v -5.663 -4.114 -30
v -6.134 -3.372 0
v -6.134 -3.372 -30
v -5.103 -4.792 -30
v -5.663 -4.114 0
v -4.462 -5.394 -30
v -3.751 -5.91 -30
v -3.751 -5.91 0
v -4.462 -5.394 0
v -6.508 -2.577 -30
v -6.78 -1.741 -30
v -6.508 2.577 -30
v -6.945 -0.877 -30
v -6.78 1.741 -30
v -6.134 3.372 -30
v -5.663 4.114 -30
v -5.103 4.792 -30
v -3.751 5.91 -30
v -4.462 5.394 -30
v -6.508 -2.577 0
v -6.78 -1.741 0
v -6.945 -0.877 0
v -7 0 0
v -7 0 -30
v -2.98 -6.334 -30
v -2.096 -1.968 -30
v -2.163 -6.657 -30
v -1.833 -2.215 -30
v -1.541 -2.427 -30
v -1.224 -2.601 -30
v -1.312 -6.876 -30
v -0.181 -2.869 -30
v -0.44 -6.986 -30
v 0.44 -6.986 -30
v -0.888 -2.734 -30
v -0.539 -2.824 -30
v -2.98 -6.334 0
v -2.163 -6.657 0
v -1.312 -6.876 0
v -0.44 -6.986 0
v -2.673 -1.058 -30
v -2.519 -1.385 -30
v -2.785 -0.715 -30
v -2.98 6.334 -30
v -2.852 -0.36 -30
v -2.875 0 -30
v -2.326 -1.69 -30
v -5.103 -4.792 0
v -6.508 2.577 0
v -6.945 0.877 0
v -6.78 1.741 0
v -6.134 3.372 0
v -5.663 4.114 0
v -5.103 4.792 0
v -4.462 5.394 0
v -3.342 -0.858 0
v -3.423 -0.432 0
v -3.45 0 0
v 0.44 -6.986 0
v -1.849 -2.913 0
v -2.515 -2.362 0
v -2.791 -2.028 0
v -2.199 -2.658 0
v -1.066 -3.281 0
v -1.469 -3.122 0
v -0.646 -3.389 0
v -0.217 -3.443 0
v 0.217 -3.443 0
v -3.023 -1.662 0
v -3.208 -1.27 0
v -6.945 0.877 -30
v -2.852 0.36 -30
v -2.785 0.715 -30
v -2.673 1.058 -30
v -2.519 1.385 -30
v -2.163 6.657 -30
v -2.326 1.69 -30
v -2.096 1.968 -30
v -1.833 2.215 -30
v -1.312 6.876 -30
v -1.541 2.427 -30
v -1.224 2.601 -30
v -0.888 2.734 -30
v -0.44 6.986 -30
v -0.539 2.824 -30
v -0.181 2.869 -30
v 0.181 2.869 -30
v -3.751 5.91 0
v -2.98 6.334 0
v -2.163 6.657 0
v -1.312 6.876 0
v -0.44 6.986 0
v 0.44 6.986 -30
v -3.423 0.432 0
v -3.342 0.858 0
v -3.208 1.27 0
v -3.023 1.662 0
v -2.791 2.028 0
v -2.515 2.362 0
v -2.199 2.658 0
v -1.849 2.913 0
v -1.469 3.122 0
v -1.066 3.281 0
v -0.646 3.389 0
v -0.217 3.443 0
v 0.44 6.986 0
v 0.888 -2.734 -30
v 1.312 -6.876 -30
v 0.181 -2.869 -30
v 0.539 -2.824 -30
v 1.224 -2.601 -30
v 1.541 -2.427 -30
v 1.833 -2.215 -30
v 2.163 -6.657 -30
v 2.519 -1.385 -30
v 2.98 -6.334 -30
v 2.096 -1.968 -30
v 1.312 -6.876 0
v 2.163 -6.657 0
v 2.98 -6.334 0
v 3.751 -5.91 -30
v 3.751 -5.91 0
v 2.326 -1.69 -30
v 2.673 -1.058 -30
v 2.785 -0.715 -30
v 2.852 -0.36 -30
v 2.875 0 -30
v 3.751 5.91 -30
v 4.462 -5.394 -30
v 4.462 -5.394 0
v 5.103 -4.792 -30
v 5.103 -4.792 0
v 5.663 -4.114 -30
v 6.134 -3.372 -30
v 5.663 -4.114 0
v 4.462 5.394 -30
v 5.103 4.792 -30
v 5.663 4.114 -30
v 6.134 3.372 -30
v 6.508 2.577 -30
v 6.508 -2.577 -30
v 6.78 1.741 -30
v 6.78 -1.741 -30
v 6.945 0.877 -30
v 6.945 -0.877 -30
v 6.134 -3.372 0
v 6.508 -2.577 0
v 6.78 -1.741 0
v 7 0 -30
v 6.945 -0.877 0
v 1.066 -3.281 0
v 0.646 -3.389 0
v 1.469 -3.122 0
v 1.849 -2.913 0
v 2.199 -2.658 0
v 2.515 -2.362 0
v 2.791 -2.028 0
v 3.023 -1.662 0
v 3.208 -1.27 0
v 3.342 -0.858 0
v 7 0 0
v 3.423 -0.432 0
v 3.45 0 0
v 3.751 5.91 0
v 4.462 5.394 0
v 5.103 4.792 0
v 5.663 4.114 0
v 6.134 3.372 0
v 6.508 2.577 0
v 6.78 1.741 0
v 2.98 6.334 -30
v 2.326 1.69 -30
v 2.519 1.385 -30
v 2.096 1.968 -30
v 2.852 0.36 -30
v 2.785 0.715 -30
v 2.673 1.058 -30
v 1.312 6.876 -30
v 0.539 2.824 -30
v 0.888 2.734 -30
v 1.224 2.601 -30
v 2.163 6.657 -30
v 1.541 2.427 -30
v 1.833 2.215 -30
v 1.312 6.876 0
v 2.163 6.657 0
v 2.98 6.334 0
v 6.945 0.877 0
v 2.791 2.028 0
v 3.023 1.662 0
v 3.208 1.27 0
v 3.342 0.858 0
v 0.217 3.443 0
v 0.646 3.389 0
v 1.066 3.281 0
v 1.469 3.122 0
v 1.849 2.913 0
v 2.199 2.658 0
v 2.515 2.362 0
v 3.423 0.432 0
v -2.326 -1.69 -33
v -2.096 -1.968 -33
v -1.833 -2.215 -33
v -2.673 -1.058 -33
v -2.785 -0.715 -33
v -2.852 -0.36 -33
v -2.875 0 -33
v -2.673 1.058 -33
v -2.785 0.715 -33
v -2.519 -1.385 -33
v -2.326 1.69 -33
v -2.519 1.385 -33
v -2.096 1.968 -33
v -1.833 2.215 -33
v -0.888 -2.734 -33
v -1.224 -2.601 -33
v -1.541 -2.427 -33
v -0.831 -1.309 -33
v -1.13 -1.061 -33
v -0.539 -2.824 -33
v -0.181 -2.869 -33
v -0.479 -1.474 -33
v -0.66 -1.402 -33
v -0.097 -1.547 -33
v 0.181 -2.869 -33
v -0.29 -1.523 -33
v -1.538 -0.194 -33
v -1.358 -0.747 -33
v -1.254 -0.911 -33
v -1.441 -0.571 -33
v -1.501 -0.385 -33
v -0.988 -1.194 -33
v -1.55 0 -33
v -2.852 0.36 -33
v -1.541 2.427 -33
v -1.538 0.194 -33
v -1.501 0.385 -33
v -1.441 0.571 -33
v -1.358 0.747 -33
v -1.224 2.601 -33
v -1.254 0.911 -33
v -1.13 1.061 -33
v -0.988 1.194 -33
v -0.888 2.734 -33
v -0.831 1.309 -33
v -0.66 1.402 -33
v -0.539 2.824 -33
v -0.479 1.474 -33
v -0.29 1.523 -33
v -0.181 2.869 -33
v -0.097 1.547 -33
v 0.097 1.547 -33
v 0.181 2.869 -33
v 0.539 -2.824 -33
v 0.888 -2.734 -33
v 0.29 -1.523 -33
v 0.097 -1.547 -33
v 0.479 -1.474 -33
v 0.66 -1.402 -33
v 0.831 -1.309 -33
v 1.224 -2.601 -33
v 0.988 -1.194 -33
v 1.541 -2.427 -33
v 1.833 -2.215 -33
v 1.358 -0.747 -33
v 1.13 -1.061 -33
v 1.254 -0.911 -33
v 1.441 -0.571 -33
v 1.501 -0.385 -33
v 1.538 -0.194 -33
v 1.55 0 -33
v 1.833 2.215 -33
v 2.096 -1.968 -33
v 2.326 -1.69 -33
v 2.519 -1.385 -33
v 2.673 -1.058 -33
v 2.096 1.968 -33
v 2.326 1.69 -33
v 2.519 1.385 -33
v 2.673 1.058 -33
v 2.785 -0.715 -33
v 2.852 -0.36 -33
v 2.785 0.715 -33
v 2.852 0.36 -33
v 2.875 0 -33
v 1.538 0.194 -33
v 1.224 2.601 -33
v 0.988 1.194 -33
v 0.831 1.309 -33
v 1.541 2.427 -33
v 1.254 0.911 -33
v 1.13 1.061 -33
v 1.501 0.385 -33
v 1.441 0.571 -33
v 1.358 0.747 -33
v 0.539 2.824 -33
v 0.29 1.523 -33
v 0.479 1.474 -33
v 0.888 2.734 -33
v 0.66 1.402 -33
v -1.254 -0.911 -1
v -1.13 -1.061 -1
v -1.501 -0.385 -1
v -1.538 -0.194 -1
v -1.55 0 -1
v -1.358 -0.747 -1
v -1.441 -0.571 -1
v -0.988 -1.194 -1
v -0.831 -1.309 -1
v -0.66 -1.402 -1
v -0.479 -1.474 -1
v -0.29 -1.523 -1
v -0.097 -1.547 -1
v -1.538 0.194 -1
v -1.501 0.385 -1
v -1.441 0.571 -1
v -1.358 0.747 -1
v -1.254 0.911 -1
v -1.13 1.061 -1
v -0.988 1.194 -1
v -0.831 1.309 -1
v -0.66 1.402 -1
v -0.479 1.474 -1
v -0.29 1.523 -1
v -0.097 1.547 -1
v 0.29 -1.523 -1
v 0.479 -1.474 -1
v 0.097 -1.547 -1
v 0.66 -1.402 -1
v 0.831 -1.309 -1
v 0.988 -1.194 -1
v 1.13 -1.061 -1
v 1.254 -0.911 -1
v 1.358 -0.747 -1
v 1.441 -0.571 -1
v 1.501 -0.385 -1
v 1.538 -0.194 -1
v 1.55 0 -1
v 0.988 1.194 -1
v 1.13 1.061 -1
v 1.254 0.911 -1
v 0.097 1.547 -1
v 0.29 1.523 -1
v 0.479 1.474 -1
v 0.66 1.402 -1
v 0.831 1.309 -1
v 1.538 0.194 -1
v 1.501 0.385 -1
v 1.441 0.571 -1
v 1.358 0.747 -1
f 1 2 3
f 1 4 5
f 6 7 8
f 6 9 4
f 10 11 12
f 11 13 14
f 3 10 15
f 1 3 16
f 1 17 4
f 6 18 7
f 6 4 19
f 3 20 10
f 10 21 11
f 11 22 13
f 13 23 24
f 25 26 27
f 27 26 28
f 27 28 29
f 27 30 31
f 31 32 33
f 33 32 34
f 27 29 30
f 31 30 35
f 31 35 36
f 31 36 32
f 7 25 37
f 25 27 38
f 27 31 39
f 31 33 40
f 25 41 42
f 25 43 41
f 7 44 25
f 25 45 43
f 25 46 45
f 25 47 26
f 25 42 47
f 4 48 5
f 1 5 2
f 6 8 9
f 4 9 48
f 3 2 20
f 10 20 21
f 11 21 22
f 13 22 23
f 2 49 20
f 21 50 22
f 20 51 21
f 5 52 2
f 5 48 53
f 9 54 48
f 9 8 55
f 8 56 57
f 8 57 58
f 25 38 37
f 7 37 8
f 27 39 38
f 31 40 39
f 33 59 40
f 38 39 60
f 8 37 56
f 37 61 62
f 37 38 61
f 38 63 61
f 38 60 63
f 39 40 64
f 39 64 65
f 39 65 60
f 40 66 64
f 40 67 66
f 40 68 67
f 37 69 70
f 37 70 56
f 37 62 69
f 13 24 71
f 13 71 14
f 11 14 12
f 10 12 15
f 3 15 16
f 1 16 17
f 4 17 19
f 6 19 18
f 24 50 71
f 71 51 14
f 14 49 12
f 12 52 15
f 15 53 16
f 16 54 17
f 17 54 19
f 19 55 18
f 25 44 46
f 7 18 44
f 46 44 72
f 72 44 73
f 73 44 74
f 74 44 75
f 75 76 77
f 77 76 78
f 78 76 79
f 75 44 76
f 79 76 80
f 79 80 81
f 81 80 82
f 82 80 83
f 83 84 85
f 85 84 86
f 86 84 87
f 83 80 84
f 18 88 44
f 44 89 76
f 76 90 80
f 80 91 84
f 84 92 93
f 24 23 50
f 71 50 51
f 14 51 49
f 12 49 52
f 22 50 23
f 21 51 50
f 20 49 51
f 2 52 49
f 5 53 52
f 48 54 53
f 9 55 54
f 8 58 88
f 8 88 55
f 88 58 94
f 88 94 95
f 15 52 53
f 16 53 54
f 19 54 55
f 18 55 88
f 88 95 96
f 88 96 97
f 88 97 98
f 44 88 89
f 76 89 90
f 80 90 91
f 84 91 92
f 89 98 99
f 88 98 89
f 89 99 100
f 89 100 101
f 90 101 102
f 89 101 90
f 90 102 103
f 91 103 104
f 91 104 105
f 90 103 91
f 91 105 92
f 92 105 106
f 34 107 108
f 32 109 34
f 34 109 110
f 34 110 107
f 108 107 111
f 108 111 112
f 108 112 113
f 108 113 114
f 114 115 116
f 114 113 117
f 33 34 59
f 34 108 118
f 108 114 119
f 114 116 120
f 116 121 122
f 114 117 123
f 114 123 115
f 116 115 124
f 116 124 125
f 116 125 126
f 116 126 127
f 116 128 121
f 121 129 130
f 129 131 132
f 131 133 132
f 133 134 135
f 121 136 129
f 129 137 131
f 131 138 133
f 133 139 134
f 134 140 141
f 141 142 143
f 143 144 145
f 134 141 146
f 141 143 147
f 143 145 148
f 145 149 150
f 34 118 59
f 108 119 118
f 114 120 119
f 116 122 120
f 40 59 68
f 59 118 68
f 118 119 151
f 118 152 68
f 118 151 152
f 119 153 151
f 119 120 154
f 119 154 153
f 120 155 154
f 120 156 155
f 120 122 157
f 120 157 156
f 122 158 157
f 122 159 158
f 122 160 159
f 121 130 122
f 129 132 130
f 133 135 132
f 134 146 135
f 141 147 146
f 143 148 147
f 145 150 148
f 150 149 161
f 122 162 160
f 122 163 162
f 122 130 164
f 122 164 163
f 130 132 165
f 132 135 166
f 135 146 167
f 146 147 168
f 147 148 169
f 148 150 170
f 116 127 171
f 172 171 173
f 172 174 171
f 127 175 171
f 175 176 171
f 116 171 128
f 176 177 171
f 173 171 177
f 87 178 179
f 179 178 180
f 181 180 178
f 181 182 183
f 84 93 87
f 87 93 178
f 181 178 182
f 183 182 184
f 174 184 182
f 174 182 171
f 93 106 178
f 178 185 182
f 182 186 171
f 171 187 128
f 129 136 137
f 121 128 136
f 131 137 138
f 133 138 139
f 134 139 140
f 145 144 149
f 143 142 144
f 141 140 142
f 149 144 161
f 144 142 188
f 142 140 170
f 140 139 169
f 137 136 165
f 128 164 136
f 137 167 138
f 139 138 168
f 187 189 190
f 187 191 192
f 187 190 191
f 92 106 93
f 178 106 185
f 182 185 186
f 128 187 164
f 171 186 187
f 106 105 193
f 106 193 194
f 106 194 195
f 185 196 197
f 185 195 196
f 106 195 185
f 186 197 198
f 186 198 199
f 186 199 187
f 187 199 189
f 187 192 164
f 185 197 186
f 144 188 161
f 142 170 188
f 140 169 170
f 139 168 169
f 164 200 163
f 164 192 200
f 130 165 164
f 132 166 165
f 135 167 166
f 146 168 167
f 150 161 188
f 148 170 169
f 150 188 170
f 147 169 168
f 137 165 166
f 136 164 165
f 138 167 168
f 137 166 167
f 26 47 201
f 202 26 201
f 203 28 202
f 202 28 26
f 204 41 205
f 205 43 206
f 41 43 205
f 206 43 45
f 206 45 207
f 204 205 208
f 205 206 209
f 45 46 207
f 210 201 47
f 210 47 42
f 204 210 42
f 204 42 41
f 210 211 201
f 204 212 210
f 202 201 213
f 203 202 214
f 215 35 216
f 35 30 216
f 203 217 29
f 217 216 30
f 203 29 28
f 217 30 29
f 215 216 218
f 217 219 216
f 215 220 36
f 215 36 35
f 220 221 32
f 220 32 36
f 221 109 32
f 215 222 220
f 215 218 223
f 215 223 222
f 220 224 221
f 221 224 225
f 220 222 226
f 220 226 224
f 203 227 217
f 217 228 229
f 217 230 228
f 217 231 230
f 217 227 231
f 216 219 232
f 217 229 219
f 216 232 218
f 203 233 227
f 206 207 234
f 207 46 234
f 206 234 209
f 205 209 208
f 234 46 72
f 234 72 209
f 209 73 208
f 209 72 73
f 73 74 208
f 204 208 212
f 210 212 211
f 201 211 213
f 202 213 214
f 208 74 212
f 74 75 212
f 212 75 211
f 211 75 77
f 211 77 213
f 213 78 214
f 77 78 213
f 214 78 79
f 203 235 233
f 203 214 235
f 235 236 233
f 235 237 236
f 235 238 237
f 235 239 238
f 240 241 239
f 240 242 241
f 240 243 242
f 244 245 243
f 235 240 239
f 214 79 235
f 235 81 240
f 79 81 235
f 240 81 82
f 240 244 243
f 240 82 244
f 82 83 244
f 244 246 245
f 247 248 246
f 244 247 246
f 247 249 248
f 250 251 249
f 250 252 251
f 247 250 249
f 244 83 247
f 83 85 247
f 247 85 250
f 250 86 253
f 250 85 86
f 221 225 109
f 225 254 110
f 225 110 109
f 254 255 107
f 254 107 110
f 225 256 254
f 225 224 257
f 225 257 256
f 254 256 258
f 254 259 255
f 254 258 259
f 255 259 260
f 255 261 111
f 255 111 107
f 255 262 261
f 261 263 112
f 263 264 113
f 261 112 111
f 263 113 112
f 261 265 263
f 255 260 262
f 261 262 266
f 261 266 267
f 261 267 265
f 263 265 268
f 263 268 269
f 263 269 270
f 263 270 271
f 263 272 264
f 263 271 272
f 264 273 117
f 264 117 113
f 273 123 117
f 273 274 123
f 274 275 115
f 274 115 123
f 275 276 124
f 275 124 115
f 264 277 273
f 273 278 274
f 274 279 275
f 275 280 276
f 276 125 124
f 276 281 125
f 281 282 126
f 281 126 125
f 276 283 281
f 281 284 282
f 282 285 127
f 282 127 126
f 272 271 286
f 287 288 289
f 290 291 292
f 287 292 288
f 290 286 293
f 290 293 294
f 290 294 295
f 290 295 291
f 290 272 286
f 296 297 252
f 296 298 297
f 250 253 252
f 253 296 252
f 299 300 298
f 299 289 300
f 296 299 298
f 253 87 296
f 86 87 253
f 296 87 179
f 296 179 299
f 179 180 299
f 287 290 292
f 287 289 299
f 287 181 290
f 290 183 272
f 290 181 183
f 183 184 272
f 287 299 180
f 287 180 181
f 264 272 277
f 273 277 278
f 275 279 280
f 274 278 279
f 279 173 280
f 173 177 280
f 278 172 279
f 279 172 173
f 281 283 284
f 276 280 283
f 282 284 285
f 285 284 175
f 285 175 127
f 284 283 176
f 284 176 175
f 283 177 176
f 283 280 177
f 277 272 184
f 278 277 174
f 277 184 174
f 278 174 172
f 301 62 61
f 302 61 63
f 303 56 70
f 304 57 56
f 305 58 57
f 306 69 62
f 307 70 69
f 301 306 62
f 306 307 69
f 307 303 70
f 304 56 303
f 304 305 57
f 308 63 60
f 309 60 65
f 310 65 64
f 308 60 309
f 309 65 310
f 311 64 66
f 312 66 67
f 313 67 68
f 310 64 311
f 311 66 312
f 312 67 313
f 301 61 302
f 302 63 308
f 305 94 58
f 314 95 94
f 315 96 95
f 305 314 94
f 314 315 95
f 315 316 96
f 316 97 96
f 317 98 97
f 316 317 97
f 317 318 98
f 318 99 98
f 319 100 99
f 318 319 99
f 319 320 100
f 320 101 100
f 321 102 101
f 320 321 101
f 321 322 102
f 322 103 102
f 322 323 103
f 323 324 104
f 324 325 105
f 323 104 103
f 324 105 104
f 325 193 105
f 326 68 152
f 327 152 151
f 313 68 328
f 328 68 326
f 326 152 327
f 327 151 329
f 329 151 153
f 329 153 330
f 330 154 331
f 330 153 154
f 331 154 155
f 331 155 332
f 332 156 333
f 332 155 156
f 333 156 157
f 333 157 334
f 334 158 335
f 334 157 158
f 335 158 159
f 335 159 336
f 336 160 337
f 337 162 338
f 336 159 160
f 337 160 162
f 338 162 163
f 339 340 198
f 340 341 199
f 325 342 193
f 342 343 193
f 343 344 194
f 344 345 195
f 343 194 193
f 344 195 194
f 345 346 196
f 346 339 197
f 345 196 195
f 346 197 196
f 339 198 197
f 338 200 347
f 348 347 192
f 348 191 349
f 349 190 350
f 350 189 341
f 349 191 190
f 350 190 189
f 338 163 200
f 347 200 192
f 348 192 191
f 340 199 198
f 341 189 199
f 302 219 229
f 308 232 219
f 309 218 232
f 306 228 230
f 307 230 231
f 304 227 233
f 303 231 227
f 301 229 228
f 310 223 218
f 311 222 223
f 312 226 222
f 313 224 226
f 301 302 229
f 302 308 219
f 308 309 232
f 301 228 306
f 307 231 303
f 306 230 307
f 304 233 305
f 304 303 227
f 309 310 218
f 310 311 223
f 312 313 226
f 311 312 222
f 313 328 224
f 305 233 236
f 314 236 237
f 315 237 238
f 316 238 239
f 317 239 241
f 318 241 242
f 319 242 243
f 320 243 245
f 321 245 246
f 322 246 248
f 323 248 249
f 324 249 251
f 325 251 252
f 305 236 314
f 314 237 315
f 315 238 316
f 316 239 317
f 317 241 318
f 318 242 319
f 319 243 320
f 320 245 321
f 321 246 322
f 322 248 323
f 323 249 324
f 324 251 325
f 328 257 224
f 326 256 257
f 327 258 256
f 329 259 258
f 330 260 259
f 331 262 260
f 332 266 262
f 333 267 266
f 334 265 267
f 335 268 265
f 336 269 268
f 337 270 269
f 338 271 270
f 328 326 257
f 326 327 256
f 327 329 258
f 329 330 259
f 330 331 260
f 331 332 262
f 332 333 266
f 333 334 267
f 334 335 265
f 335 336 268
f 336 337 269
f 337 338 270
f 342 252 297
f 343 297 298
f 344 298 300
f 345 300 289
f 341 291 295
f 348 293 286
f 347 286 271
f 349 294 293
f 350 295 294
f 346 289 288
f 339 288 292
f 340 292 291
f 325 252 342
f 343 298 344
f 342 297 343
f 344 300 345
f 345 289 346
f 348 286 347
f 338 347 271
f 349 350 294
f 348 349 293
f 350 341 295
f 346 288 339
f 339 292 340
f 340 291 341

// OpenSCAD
$fn = 50;


difference() {
	union() {
		translate(v = [0, 0, -30.0000000000]) {
			cylinder(h = 30, r = 7.0000000000);
		}
		#translate(v = [0, 0, -33.0000000000]) {
			cylinder(h = 33, r = 2.8750000000);
		}
	}
	union() {
		translate(v = [0, 0, 0]) {
			rotate(a = [0, 0, 0]) {
				difference() {
					union() {
						translate(v = [0, 0, -33.0000000000]) {
							cylinder(h = 33, r = 1.2500000000);
						}
						translate(v = [0, 0, -1.0000000000]) {
							cylinder(h = 1.0000000000, r1 = 1.5500000000, r2 = 3.4500000000);
						}
						translate(v = [0, 0, -33.0000000000]) {
							cylinder(h = 33, r = 1.5500000000);
						}
						translate(v = [0, 0, -33.0000000000]) {
							cylinder(h = 33, r = 1.2500000000);
						}
					}
					union();
				}
			}
		}
	}
}
